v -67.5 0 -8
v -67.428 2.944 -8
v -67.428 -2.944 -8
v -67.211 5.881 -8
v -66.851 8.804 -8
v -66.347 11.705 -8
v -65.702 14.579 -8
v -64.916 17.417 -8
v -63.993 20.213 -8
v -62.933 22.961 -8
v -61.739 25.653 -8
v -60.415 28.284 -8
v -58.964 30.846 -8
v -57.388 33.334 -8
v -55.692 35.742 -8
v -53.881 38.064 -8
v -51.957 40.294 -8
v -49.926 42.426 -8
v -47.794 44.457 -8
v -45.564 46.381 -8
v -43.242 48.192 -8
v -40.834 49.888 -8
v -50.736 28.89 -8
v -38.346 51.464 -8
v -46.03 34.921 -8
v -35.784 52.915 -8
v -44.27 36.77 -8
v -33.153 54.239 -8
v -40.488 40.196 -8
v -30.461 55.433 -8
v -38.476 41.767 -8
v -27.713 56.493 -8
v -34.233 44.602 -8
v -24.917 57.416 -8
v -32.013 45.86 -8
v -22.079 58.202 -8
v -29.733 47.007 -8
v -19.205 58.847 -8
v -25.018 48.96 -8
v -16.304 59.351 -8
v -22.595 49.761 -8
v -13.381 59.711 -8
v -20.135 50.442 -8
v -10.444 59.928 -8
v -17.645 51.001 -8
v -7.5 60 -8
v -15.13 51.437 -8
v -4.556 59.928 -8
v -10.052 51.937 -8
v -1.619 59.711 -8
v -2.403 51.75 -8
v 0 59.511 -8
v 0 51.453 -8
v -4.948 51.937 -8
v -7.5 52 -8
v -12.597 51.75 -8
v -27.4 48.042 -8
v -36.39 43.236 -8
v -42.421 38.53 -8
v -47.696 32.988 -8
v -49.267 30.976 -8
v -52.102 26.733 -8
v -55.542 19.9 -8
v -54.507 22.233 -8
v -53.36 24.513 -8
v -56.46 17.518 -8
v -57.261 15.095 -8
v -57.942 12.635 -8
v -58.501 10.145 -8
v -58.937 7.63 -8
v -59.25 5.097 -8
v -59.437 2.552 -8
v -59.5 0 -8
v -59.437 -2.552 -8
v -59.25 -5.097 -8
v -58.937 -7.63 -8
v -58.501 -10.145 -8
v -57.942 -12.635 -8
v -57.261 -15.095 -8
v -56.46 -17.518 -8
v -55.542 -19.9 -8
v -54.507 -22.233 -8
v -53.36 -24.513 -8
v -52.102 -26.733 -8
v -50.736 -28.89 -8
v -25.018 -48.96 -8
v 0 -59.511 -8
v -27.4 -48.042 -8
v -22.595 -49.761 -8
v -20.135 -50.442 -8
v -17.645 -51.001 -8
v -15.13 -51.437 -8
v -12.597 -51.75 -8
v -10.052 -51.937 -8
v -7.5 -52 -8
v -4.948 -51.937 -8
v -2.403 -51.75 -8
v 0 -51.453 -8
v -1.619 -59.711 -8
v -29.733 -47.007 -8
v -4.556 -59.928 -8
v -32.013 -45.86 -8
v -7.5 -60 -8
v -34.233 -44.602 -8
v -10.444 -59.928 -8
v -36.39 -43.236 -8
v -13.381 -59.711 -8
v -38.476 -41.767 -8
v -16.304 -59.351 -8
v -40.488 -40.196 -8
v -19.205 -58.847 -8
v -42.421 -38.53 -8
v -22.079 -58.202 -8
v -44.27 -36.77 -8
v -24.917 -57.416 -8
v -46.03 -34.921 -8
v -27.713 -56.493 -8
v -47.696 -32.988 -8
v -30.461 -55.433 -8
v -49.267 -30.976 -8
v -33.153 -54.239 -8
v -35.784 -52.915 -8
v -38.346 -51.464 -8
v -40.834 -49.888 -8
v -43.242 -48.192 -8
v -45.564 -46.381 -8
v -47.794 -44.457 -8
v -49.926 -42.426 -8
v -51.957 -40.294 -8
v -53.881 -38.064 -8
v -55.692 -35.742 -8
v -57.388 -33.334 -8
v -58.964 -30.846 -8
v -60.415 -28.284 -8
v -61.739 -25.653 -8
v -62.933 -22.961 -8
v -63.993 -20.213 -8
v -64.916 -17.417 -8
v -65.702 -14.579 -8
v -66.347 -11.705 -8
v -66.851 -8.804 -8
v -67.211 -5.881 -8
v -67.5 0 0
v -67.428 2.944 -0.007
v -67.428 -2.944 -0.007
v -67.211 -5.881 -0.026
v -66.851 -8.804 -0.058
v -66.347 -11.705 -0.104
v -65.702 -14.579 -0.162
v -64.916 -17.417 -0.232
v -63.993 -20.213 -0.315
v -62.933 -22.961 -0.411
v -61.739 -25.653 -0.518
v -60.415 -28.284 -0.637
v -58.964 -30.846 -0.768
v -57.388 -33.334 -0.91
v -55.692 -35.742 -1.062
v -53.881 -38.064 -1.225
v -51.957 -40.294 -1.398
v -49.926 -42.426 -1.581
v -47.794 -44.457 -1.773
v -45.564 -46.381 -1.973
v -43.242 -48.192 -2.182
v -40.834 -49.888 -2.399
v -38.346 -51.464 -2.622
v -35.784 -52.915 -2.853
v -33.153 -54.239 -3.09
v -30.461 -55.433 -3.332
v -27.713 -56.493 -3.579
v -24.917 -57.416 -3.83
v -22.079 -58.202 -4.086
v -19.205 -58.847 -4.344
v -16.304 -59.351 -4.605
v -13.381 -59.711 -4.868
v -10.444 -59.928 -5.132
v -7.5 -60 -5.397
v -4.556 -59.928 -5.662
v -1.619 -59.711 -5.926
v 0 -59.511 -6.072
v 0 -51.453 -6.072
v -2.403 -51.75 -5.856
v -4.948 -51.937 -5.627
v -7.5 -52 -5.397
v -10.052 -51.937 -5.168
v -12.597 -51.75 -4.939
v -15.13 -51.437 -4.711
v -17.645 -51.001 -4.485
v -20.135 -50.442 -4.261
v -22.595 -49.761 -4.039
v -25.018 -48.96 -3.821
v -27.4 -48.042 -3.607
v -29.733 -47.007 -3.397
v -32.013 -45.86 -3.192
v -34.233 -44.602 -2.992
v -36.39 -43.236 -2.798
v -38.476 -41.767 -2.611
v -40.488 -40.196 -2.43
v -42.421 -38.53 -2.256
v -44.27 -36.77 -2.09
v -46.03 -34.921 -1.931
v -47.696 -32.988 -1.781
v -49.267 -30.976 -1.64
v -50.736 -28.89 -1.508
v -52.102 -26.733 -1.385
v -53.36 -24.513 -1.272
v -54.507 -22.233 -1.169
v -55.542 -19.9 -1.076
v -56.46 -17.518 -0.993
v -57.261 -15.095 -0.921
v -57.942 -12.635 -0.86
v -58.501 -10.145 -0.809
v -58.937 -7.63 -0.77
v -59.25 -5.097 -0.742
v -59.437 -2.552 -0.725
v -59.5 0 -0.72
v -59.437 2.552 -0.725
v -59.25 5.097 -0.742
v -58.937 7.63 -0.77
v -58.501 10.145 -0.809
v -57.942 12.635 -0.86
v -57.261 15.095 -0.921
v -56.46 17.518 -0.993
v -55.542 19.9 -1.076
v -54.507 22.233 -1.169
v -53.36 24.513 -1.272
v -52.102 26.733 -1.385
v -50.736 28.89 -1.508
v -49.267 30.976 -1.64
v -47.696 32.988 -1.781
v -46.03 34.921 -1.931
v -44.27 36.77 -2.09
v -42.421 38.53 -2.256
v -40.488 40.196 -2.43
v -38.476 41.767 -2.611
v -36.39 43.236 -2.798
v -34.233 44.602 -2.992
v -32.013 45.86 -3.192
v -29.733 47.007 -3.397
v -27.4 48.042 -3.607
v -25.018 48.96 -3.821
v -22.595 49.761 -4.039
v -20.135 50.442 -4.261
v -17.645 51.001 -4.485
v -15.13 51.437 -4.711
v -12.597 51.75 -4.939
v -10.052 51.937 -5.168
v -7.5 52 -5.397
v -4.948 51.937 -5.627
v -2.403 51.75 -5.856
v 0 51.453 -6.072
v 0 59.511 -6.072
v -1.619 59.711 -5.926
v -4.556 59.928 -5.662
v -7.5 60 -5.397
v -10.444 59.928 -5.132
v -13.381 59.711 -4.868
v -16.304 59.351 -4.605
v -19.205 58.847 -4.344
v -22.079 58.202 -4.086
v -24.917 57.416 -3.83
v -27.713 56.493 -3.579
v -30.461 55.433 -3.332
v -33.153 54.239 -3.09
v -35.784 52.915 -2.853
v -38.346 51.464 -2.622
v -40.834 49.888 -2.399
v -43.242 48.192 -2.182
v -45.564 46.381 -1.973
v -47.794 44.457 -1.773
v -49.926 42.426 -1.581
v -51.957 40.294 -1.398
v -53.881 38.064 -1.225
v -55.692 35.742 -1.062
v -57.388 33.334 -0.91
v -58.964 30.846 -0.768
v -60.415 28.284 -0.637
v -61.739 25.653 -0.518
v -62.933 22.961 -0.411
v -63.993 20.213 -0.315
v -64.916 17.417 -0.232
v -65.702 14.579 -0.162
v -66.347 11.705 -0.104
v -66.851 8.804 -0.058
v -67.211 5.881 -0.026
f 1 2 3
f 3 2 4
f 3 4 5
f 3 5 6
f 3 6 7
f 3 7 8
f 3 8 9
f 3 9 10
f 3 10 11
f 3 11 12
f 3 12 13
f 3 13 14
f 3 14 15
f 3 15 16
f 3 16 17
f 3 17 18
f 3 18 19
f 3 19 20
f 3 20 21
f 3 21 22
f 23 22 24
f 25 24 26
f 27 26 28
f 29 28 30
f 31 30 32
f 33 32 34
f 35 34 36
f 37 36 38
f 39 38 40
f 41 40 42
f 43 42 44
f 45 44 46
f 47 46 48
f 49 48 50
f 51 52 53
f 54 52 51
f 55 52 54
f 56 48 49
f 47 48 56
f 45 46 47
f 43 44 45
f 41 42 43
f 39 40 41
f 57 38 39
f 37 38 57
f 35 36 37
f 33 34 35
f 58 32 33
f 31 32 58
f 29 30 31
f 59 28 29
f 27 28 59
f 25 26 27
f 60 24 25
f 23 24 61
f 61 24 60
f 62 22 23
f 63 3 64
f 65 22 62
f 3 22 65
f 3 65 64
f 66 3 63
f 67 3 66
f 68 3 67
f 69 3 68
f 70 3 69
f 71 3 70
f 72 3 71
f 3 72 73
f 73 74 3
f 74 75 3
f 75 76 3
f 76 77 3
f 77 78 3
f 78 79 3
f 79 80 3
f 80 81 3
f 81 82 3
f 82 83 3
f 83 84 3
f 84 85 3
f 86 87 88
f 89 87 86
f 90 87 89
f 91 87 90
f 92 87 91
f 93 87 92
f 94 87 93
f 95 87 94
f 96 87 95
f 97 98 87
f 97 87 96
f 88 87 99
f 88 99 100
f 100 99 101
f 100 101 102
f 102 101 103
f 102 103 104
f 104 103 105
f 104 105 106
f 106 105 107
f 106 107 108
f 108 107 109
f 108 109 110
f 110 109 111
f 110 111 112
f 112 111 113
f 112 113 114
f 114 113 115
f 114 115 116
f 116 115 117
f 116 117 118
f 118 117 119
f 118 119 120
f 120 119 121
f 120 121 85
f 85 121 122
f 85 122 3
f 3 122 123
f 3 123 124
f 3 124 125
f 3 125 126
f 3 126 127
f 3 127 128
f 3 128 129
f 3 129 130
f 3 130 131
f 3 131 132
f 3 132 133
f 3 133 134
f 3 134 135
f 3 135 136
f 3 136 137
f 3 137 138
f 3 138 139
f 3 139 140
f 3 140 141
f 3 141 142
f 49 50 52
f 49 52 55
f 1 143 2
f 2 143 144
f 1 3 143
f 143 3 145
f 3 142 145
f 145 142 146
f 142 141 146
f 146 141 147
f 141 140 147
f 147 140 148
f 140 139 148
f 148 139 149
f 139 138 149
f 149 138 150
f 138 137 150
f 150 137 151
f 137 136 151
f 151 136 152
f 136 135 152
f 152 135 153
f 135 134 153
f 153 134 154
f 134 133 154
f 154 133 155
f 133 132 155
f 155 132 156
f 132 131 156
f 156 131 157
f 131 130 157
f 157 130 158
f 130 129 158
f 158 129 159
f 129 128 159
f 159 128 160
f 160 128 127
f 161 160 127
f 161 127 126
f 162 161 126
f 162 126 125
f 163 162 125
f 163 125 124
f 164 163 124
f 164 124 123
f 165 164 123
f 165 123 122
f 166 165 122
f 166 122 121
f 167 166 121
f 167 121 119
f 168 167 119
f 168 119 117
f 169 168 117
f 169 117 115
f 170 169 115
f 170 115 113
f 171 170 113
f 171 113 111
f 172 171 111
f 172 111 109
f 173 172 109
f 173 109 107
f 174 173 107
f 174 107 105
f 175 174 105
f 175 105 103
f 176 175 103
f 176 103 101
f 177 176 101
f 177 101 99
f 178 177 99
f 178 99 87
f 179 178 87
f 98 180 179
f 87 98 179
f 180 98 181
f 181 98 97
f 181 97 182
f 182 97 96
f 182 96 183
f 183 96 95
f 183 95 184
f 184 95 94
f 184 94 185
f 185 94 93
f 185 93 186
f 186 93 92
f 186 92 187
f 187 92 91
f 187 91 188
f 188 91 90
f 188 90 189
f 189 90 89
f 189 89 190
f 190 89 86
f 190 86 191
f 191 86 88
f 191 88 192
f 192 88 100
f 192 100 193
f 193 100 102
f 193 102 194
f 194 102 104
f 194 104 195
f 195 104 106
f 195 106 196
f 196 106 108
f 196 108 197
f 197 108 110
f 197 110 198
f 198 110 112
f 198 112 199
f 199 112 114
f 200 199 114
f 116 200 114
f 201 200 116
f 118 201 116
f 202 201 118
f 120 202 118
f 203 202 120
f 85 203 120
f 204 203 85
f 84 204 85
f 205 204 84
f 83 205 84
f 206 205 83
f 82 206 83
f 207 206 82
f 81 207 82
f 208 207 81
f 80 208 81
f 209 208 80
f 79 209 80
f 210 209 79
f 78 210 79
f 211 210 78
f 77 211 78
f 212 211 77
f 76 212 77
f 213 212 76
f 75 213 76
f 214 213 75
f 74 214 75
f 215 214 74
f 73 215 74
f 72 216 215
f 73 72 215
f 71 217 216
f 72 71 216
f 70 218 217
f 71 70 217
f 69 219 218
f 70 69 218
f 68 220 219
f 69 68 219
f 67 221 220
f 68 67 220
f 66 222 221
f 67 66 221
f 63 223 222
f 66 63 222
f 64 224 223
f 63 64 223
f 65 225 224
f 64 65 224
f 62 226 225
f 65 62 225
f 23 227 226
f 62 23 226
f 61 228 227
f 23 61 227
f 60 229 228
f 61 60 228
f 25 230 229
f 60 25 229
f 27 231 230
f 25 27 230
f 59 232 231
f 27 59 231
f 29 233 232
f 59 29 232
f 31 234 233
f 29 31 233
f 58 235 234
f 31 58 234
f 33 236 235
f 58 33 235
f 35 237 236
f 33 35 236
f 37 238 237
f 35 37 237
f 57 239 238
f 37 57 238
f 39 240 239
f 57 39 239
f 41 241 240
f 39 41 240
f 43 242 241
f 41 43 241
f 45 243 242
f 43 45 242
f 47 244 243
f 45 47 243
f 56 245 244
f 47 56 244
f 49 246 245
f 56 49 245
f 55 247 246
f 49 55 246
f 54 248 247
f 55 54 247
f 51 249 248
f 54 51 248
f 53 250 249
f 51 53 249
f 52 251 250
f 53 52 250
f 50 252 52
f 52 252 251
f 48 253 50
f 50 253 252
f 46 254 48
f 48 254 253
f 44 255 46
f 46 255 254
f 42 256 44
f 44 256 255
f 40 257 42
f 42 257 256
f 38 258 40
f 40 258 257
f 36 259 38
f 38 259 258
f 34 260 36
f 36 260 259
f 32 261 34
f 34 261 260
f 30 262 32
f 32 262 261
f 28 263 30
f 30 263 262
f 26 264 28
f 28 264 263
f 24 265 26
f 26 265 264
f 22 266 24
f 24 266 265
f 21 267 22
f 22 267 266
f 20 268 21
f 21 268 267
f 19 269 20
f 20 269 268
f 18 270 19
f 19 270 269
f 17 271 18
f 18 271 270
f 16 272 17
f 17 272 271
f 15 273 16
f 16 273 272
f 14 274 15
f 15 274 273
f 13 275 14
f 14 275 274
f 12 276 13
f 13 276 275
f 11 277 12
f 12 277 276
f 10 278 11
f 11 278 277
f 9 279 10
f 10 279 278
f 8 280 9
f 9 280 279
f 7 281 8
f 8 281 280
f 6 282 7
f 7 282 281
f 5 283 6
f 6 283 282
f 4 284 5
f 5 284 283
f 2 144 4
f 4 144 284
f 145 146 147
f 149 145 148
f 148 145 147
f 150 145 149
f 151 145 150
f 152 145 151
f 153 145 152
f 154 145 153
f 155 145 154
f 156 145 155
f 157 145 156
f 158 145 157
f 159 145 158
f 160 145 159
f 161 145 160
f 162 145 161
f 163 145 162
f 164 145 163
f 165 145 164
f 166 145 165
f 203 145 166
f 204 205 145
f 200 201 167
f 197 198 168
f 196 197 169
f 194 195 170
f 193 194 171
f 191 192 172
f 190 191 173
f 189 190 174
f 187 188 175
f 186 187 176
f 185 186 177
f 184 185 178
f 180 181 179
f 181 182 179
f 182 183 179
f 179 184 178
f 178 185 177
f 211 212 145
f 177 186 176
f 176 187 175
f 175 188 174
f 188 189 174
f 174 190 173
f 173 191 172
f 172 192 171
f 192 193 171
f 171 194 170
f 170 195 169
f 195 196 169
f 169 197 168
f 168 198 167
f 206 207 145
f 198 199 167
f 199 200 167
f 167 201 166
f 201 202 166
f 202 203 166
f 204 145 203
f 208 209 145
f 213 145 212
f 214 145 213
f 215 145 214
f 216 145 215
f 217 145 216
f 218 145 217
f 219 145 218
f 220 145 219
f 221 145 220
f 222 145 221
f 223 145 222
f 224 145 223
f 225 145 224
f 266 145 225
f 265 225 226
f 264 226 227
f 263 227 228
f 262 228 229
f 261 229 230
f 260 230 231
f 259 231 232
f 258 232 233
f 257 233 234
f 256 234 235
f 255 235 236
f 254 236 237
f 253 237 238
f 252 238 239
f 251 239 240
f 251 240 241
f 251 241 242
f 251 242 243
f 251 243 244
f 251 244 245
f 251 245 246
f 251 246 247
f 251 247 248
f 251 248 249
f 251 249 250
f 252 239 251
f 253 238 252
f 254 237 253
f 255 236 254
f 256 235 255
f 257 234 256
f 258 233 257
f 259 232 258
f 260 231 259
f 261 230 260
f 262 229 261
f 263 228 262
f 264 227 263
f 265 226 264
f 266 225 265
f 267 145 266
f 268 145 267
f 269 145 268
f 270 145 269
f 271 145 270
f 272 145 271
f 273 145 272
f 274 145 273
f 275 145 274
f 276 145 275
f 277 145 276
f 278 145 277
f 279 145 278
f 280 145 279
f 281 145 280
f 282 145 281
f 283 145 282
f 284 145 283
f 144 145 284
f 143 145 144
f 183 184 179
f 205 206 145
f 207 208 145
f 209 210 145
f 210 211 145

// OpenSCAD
$fn=128;
	difference() {
    difference() {
        difference() {		
            difference() {	
                translate([-7.5,0,-4]) cylinder (h = 8, r=60, center = true);
                translate([-7.5,0,-8]) cylinder (h = 20, r=52, center = true);
            }
            translate([-67.5,-80,0]) rotate([0,5.14,0]) cube([90,160,20]);
        }
        translate([0,-80,-25]) cube([100,160,50]);
    }
    translate([-100,-60,0]) cube([100,120,10]);
}
